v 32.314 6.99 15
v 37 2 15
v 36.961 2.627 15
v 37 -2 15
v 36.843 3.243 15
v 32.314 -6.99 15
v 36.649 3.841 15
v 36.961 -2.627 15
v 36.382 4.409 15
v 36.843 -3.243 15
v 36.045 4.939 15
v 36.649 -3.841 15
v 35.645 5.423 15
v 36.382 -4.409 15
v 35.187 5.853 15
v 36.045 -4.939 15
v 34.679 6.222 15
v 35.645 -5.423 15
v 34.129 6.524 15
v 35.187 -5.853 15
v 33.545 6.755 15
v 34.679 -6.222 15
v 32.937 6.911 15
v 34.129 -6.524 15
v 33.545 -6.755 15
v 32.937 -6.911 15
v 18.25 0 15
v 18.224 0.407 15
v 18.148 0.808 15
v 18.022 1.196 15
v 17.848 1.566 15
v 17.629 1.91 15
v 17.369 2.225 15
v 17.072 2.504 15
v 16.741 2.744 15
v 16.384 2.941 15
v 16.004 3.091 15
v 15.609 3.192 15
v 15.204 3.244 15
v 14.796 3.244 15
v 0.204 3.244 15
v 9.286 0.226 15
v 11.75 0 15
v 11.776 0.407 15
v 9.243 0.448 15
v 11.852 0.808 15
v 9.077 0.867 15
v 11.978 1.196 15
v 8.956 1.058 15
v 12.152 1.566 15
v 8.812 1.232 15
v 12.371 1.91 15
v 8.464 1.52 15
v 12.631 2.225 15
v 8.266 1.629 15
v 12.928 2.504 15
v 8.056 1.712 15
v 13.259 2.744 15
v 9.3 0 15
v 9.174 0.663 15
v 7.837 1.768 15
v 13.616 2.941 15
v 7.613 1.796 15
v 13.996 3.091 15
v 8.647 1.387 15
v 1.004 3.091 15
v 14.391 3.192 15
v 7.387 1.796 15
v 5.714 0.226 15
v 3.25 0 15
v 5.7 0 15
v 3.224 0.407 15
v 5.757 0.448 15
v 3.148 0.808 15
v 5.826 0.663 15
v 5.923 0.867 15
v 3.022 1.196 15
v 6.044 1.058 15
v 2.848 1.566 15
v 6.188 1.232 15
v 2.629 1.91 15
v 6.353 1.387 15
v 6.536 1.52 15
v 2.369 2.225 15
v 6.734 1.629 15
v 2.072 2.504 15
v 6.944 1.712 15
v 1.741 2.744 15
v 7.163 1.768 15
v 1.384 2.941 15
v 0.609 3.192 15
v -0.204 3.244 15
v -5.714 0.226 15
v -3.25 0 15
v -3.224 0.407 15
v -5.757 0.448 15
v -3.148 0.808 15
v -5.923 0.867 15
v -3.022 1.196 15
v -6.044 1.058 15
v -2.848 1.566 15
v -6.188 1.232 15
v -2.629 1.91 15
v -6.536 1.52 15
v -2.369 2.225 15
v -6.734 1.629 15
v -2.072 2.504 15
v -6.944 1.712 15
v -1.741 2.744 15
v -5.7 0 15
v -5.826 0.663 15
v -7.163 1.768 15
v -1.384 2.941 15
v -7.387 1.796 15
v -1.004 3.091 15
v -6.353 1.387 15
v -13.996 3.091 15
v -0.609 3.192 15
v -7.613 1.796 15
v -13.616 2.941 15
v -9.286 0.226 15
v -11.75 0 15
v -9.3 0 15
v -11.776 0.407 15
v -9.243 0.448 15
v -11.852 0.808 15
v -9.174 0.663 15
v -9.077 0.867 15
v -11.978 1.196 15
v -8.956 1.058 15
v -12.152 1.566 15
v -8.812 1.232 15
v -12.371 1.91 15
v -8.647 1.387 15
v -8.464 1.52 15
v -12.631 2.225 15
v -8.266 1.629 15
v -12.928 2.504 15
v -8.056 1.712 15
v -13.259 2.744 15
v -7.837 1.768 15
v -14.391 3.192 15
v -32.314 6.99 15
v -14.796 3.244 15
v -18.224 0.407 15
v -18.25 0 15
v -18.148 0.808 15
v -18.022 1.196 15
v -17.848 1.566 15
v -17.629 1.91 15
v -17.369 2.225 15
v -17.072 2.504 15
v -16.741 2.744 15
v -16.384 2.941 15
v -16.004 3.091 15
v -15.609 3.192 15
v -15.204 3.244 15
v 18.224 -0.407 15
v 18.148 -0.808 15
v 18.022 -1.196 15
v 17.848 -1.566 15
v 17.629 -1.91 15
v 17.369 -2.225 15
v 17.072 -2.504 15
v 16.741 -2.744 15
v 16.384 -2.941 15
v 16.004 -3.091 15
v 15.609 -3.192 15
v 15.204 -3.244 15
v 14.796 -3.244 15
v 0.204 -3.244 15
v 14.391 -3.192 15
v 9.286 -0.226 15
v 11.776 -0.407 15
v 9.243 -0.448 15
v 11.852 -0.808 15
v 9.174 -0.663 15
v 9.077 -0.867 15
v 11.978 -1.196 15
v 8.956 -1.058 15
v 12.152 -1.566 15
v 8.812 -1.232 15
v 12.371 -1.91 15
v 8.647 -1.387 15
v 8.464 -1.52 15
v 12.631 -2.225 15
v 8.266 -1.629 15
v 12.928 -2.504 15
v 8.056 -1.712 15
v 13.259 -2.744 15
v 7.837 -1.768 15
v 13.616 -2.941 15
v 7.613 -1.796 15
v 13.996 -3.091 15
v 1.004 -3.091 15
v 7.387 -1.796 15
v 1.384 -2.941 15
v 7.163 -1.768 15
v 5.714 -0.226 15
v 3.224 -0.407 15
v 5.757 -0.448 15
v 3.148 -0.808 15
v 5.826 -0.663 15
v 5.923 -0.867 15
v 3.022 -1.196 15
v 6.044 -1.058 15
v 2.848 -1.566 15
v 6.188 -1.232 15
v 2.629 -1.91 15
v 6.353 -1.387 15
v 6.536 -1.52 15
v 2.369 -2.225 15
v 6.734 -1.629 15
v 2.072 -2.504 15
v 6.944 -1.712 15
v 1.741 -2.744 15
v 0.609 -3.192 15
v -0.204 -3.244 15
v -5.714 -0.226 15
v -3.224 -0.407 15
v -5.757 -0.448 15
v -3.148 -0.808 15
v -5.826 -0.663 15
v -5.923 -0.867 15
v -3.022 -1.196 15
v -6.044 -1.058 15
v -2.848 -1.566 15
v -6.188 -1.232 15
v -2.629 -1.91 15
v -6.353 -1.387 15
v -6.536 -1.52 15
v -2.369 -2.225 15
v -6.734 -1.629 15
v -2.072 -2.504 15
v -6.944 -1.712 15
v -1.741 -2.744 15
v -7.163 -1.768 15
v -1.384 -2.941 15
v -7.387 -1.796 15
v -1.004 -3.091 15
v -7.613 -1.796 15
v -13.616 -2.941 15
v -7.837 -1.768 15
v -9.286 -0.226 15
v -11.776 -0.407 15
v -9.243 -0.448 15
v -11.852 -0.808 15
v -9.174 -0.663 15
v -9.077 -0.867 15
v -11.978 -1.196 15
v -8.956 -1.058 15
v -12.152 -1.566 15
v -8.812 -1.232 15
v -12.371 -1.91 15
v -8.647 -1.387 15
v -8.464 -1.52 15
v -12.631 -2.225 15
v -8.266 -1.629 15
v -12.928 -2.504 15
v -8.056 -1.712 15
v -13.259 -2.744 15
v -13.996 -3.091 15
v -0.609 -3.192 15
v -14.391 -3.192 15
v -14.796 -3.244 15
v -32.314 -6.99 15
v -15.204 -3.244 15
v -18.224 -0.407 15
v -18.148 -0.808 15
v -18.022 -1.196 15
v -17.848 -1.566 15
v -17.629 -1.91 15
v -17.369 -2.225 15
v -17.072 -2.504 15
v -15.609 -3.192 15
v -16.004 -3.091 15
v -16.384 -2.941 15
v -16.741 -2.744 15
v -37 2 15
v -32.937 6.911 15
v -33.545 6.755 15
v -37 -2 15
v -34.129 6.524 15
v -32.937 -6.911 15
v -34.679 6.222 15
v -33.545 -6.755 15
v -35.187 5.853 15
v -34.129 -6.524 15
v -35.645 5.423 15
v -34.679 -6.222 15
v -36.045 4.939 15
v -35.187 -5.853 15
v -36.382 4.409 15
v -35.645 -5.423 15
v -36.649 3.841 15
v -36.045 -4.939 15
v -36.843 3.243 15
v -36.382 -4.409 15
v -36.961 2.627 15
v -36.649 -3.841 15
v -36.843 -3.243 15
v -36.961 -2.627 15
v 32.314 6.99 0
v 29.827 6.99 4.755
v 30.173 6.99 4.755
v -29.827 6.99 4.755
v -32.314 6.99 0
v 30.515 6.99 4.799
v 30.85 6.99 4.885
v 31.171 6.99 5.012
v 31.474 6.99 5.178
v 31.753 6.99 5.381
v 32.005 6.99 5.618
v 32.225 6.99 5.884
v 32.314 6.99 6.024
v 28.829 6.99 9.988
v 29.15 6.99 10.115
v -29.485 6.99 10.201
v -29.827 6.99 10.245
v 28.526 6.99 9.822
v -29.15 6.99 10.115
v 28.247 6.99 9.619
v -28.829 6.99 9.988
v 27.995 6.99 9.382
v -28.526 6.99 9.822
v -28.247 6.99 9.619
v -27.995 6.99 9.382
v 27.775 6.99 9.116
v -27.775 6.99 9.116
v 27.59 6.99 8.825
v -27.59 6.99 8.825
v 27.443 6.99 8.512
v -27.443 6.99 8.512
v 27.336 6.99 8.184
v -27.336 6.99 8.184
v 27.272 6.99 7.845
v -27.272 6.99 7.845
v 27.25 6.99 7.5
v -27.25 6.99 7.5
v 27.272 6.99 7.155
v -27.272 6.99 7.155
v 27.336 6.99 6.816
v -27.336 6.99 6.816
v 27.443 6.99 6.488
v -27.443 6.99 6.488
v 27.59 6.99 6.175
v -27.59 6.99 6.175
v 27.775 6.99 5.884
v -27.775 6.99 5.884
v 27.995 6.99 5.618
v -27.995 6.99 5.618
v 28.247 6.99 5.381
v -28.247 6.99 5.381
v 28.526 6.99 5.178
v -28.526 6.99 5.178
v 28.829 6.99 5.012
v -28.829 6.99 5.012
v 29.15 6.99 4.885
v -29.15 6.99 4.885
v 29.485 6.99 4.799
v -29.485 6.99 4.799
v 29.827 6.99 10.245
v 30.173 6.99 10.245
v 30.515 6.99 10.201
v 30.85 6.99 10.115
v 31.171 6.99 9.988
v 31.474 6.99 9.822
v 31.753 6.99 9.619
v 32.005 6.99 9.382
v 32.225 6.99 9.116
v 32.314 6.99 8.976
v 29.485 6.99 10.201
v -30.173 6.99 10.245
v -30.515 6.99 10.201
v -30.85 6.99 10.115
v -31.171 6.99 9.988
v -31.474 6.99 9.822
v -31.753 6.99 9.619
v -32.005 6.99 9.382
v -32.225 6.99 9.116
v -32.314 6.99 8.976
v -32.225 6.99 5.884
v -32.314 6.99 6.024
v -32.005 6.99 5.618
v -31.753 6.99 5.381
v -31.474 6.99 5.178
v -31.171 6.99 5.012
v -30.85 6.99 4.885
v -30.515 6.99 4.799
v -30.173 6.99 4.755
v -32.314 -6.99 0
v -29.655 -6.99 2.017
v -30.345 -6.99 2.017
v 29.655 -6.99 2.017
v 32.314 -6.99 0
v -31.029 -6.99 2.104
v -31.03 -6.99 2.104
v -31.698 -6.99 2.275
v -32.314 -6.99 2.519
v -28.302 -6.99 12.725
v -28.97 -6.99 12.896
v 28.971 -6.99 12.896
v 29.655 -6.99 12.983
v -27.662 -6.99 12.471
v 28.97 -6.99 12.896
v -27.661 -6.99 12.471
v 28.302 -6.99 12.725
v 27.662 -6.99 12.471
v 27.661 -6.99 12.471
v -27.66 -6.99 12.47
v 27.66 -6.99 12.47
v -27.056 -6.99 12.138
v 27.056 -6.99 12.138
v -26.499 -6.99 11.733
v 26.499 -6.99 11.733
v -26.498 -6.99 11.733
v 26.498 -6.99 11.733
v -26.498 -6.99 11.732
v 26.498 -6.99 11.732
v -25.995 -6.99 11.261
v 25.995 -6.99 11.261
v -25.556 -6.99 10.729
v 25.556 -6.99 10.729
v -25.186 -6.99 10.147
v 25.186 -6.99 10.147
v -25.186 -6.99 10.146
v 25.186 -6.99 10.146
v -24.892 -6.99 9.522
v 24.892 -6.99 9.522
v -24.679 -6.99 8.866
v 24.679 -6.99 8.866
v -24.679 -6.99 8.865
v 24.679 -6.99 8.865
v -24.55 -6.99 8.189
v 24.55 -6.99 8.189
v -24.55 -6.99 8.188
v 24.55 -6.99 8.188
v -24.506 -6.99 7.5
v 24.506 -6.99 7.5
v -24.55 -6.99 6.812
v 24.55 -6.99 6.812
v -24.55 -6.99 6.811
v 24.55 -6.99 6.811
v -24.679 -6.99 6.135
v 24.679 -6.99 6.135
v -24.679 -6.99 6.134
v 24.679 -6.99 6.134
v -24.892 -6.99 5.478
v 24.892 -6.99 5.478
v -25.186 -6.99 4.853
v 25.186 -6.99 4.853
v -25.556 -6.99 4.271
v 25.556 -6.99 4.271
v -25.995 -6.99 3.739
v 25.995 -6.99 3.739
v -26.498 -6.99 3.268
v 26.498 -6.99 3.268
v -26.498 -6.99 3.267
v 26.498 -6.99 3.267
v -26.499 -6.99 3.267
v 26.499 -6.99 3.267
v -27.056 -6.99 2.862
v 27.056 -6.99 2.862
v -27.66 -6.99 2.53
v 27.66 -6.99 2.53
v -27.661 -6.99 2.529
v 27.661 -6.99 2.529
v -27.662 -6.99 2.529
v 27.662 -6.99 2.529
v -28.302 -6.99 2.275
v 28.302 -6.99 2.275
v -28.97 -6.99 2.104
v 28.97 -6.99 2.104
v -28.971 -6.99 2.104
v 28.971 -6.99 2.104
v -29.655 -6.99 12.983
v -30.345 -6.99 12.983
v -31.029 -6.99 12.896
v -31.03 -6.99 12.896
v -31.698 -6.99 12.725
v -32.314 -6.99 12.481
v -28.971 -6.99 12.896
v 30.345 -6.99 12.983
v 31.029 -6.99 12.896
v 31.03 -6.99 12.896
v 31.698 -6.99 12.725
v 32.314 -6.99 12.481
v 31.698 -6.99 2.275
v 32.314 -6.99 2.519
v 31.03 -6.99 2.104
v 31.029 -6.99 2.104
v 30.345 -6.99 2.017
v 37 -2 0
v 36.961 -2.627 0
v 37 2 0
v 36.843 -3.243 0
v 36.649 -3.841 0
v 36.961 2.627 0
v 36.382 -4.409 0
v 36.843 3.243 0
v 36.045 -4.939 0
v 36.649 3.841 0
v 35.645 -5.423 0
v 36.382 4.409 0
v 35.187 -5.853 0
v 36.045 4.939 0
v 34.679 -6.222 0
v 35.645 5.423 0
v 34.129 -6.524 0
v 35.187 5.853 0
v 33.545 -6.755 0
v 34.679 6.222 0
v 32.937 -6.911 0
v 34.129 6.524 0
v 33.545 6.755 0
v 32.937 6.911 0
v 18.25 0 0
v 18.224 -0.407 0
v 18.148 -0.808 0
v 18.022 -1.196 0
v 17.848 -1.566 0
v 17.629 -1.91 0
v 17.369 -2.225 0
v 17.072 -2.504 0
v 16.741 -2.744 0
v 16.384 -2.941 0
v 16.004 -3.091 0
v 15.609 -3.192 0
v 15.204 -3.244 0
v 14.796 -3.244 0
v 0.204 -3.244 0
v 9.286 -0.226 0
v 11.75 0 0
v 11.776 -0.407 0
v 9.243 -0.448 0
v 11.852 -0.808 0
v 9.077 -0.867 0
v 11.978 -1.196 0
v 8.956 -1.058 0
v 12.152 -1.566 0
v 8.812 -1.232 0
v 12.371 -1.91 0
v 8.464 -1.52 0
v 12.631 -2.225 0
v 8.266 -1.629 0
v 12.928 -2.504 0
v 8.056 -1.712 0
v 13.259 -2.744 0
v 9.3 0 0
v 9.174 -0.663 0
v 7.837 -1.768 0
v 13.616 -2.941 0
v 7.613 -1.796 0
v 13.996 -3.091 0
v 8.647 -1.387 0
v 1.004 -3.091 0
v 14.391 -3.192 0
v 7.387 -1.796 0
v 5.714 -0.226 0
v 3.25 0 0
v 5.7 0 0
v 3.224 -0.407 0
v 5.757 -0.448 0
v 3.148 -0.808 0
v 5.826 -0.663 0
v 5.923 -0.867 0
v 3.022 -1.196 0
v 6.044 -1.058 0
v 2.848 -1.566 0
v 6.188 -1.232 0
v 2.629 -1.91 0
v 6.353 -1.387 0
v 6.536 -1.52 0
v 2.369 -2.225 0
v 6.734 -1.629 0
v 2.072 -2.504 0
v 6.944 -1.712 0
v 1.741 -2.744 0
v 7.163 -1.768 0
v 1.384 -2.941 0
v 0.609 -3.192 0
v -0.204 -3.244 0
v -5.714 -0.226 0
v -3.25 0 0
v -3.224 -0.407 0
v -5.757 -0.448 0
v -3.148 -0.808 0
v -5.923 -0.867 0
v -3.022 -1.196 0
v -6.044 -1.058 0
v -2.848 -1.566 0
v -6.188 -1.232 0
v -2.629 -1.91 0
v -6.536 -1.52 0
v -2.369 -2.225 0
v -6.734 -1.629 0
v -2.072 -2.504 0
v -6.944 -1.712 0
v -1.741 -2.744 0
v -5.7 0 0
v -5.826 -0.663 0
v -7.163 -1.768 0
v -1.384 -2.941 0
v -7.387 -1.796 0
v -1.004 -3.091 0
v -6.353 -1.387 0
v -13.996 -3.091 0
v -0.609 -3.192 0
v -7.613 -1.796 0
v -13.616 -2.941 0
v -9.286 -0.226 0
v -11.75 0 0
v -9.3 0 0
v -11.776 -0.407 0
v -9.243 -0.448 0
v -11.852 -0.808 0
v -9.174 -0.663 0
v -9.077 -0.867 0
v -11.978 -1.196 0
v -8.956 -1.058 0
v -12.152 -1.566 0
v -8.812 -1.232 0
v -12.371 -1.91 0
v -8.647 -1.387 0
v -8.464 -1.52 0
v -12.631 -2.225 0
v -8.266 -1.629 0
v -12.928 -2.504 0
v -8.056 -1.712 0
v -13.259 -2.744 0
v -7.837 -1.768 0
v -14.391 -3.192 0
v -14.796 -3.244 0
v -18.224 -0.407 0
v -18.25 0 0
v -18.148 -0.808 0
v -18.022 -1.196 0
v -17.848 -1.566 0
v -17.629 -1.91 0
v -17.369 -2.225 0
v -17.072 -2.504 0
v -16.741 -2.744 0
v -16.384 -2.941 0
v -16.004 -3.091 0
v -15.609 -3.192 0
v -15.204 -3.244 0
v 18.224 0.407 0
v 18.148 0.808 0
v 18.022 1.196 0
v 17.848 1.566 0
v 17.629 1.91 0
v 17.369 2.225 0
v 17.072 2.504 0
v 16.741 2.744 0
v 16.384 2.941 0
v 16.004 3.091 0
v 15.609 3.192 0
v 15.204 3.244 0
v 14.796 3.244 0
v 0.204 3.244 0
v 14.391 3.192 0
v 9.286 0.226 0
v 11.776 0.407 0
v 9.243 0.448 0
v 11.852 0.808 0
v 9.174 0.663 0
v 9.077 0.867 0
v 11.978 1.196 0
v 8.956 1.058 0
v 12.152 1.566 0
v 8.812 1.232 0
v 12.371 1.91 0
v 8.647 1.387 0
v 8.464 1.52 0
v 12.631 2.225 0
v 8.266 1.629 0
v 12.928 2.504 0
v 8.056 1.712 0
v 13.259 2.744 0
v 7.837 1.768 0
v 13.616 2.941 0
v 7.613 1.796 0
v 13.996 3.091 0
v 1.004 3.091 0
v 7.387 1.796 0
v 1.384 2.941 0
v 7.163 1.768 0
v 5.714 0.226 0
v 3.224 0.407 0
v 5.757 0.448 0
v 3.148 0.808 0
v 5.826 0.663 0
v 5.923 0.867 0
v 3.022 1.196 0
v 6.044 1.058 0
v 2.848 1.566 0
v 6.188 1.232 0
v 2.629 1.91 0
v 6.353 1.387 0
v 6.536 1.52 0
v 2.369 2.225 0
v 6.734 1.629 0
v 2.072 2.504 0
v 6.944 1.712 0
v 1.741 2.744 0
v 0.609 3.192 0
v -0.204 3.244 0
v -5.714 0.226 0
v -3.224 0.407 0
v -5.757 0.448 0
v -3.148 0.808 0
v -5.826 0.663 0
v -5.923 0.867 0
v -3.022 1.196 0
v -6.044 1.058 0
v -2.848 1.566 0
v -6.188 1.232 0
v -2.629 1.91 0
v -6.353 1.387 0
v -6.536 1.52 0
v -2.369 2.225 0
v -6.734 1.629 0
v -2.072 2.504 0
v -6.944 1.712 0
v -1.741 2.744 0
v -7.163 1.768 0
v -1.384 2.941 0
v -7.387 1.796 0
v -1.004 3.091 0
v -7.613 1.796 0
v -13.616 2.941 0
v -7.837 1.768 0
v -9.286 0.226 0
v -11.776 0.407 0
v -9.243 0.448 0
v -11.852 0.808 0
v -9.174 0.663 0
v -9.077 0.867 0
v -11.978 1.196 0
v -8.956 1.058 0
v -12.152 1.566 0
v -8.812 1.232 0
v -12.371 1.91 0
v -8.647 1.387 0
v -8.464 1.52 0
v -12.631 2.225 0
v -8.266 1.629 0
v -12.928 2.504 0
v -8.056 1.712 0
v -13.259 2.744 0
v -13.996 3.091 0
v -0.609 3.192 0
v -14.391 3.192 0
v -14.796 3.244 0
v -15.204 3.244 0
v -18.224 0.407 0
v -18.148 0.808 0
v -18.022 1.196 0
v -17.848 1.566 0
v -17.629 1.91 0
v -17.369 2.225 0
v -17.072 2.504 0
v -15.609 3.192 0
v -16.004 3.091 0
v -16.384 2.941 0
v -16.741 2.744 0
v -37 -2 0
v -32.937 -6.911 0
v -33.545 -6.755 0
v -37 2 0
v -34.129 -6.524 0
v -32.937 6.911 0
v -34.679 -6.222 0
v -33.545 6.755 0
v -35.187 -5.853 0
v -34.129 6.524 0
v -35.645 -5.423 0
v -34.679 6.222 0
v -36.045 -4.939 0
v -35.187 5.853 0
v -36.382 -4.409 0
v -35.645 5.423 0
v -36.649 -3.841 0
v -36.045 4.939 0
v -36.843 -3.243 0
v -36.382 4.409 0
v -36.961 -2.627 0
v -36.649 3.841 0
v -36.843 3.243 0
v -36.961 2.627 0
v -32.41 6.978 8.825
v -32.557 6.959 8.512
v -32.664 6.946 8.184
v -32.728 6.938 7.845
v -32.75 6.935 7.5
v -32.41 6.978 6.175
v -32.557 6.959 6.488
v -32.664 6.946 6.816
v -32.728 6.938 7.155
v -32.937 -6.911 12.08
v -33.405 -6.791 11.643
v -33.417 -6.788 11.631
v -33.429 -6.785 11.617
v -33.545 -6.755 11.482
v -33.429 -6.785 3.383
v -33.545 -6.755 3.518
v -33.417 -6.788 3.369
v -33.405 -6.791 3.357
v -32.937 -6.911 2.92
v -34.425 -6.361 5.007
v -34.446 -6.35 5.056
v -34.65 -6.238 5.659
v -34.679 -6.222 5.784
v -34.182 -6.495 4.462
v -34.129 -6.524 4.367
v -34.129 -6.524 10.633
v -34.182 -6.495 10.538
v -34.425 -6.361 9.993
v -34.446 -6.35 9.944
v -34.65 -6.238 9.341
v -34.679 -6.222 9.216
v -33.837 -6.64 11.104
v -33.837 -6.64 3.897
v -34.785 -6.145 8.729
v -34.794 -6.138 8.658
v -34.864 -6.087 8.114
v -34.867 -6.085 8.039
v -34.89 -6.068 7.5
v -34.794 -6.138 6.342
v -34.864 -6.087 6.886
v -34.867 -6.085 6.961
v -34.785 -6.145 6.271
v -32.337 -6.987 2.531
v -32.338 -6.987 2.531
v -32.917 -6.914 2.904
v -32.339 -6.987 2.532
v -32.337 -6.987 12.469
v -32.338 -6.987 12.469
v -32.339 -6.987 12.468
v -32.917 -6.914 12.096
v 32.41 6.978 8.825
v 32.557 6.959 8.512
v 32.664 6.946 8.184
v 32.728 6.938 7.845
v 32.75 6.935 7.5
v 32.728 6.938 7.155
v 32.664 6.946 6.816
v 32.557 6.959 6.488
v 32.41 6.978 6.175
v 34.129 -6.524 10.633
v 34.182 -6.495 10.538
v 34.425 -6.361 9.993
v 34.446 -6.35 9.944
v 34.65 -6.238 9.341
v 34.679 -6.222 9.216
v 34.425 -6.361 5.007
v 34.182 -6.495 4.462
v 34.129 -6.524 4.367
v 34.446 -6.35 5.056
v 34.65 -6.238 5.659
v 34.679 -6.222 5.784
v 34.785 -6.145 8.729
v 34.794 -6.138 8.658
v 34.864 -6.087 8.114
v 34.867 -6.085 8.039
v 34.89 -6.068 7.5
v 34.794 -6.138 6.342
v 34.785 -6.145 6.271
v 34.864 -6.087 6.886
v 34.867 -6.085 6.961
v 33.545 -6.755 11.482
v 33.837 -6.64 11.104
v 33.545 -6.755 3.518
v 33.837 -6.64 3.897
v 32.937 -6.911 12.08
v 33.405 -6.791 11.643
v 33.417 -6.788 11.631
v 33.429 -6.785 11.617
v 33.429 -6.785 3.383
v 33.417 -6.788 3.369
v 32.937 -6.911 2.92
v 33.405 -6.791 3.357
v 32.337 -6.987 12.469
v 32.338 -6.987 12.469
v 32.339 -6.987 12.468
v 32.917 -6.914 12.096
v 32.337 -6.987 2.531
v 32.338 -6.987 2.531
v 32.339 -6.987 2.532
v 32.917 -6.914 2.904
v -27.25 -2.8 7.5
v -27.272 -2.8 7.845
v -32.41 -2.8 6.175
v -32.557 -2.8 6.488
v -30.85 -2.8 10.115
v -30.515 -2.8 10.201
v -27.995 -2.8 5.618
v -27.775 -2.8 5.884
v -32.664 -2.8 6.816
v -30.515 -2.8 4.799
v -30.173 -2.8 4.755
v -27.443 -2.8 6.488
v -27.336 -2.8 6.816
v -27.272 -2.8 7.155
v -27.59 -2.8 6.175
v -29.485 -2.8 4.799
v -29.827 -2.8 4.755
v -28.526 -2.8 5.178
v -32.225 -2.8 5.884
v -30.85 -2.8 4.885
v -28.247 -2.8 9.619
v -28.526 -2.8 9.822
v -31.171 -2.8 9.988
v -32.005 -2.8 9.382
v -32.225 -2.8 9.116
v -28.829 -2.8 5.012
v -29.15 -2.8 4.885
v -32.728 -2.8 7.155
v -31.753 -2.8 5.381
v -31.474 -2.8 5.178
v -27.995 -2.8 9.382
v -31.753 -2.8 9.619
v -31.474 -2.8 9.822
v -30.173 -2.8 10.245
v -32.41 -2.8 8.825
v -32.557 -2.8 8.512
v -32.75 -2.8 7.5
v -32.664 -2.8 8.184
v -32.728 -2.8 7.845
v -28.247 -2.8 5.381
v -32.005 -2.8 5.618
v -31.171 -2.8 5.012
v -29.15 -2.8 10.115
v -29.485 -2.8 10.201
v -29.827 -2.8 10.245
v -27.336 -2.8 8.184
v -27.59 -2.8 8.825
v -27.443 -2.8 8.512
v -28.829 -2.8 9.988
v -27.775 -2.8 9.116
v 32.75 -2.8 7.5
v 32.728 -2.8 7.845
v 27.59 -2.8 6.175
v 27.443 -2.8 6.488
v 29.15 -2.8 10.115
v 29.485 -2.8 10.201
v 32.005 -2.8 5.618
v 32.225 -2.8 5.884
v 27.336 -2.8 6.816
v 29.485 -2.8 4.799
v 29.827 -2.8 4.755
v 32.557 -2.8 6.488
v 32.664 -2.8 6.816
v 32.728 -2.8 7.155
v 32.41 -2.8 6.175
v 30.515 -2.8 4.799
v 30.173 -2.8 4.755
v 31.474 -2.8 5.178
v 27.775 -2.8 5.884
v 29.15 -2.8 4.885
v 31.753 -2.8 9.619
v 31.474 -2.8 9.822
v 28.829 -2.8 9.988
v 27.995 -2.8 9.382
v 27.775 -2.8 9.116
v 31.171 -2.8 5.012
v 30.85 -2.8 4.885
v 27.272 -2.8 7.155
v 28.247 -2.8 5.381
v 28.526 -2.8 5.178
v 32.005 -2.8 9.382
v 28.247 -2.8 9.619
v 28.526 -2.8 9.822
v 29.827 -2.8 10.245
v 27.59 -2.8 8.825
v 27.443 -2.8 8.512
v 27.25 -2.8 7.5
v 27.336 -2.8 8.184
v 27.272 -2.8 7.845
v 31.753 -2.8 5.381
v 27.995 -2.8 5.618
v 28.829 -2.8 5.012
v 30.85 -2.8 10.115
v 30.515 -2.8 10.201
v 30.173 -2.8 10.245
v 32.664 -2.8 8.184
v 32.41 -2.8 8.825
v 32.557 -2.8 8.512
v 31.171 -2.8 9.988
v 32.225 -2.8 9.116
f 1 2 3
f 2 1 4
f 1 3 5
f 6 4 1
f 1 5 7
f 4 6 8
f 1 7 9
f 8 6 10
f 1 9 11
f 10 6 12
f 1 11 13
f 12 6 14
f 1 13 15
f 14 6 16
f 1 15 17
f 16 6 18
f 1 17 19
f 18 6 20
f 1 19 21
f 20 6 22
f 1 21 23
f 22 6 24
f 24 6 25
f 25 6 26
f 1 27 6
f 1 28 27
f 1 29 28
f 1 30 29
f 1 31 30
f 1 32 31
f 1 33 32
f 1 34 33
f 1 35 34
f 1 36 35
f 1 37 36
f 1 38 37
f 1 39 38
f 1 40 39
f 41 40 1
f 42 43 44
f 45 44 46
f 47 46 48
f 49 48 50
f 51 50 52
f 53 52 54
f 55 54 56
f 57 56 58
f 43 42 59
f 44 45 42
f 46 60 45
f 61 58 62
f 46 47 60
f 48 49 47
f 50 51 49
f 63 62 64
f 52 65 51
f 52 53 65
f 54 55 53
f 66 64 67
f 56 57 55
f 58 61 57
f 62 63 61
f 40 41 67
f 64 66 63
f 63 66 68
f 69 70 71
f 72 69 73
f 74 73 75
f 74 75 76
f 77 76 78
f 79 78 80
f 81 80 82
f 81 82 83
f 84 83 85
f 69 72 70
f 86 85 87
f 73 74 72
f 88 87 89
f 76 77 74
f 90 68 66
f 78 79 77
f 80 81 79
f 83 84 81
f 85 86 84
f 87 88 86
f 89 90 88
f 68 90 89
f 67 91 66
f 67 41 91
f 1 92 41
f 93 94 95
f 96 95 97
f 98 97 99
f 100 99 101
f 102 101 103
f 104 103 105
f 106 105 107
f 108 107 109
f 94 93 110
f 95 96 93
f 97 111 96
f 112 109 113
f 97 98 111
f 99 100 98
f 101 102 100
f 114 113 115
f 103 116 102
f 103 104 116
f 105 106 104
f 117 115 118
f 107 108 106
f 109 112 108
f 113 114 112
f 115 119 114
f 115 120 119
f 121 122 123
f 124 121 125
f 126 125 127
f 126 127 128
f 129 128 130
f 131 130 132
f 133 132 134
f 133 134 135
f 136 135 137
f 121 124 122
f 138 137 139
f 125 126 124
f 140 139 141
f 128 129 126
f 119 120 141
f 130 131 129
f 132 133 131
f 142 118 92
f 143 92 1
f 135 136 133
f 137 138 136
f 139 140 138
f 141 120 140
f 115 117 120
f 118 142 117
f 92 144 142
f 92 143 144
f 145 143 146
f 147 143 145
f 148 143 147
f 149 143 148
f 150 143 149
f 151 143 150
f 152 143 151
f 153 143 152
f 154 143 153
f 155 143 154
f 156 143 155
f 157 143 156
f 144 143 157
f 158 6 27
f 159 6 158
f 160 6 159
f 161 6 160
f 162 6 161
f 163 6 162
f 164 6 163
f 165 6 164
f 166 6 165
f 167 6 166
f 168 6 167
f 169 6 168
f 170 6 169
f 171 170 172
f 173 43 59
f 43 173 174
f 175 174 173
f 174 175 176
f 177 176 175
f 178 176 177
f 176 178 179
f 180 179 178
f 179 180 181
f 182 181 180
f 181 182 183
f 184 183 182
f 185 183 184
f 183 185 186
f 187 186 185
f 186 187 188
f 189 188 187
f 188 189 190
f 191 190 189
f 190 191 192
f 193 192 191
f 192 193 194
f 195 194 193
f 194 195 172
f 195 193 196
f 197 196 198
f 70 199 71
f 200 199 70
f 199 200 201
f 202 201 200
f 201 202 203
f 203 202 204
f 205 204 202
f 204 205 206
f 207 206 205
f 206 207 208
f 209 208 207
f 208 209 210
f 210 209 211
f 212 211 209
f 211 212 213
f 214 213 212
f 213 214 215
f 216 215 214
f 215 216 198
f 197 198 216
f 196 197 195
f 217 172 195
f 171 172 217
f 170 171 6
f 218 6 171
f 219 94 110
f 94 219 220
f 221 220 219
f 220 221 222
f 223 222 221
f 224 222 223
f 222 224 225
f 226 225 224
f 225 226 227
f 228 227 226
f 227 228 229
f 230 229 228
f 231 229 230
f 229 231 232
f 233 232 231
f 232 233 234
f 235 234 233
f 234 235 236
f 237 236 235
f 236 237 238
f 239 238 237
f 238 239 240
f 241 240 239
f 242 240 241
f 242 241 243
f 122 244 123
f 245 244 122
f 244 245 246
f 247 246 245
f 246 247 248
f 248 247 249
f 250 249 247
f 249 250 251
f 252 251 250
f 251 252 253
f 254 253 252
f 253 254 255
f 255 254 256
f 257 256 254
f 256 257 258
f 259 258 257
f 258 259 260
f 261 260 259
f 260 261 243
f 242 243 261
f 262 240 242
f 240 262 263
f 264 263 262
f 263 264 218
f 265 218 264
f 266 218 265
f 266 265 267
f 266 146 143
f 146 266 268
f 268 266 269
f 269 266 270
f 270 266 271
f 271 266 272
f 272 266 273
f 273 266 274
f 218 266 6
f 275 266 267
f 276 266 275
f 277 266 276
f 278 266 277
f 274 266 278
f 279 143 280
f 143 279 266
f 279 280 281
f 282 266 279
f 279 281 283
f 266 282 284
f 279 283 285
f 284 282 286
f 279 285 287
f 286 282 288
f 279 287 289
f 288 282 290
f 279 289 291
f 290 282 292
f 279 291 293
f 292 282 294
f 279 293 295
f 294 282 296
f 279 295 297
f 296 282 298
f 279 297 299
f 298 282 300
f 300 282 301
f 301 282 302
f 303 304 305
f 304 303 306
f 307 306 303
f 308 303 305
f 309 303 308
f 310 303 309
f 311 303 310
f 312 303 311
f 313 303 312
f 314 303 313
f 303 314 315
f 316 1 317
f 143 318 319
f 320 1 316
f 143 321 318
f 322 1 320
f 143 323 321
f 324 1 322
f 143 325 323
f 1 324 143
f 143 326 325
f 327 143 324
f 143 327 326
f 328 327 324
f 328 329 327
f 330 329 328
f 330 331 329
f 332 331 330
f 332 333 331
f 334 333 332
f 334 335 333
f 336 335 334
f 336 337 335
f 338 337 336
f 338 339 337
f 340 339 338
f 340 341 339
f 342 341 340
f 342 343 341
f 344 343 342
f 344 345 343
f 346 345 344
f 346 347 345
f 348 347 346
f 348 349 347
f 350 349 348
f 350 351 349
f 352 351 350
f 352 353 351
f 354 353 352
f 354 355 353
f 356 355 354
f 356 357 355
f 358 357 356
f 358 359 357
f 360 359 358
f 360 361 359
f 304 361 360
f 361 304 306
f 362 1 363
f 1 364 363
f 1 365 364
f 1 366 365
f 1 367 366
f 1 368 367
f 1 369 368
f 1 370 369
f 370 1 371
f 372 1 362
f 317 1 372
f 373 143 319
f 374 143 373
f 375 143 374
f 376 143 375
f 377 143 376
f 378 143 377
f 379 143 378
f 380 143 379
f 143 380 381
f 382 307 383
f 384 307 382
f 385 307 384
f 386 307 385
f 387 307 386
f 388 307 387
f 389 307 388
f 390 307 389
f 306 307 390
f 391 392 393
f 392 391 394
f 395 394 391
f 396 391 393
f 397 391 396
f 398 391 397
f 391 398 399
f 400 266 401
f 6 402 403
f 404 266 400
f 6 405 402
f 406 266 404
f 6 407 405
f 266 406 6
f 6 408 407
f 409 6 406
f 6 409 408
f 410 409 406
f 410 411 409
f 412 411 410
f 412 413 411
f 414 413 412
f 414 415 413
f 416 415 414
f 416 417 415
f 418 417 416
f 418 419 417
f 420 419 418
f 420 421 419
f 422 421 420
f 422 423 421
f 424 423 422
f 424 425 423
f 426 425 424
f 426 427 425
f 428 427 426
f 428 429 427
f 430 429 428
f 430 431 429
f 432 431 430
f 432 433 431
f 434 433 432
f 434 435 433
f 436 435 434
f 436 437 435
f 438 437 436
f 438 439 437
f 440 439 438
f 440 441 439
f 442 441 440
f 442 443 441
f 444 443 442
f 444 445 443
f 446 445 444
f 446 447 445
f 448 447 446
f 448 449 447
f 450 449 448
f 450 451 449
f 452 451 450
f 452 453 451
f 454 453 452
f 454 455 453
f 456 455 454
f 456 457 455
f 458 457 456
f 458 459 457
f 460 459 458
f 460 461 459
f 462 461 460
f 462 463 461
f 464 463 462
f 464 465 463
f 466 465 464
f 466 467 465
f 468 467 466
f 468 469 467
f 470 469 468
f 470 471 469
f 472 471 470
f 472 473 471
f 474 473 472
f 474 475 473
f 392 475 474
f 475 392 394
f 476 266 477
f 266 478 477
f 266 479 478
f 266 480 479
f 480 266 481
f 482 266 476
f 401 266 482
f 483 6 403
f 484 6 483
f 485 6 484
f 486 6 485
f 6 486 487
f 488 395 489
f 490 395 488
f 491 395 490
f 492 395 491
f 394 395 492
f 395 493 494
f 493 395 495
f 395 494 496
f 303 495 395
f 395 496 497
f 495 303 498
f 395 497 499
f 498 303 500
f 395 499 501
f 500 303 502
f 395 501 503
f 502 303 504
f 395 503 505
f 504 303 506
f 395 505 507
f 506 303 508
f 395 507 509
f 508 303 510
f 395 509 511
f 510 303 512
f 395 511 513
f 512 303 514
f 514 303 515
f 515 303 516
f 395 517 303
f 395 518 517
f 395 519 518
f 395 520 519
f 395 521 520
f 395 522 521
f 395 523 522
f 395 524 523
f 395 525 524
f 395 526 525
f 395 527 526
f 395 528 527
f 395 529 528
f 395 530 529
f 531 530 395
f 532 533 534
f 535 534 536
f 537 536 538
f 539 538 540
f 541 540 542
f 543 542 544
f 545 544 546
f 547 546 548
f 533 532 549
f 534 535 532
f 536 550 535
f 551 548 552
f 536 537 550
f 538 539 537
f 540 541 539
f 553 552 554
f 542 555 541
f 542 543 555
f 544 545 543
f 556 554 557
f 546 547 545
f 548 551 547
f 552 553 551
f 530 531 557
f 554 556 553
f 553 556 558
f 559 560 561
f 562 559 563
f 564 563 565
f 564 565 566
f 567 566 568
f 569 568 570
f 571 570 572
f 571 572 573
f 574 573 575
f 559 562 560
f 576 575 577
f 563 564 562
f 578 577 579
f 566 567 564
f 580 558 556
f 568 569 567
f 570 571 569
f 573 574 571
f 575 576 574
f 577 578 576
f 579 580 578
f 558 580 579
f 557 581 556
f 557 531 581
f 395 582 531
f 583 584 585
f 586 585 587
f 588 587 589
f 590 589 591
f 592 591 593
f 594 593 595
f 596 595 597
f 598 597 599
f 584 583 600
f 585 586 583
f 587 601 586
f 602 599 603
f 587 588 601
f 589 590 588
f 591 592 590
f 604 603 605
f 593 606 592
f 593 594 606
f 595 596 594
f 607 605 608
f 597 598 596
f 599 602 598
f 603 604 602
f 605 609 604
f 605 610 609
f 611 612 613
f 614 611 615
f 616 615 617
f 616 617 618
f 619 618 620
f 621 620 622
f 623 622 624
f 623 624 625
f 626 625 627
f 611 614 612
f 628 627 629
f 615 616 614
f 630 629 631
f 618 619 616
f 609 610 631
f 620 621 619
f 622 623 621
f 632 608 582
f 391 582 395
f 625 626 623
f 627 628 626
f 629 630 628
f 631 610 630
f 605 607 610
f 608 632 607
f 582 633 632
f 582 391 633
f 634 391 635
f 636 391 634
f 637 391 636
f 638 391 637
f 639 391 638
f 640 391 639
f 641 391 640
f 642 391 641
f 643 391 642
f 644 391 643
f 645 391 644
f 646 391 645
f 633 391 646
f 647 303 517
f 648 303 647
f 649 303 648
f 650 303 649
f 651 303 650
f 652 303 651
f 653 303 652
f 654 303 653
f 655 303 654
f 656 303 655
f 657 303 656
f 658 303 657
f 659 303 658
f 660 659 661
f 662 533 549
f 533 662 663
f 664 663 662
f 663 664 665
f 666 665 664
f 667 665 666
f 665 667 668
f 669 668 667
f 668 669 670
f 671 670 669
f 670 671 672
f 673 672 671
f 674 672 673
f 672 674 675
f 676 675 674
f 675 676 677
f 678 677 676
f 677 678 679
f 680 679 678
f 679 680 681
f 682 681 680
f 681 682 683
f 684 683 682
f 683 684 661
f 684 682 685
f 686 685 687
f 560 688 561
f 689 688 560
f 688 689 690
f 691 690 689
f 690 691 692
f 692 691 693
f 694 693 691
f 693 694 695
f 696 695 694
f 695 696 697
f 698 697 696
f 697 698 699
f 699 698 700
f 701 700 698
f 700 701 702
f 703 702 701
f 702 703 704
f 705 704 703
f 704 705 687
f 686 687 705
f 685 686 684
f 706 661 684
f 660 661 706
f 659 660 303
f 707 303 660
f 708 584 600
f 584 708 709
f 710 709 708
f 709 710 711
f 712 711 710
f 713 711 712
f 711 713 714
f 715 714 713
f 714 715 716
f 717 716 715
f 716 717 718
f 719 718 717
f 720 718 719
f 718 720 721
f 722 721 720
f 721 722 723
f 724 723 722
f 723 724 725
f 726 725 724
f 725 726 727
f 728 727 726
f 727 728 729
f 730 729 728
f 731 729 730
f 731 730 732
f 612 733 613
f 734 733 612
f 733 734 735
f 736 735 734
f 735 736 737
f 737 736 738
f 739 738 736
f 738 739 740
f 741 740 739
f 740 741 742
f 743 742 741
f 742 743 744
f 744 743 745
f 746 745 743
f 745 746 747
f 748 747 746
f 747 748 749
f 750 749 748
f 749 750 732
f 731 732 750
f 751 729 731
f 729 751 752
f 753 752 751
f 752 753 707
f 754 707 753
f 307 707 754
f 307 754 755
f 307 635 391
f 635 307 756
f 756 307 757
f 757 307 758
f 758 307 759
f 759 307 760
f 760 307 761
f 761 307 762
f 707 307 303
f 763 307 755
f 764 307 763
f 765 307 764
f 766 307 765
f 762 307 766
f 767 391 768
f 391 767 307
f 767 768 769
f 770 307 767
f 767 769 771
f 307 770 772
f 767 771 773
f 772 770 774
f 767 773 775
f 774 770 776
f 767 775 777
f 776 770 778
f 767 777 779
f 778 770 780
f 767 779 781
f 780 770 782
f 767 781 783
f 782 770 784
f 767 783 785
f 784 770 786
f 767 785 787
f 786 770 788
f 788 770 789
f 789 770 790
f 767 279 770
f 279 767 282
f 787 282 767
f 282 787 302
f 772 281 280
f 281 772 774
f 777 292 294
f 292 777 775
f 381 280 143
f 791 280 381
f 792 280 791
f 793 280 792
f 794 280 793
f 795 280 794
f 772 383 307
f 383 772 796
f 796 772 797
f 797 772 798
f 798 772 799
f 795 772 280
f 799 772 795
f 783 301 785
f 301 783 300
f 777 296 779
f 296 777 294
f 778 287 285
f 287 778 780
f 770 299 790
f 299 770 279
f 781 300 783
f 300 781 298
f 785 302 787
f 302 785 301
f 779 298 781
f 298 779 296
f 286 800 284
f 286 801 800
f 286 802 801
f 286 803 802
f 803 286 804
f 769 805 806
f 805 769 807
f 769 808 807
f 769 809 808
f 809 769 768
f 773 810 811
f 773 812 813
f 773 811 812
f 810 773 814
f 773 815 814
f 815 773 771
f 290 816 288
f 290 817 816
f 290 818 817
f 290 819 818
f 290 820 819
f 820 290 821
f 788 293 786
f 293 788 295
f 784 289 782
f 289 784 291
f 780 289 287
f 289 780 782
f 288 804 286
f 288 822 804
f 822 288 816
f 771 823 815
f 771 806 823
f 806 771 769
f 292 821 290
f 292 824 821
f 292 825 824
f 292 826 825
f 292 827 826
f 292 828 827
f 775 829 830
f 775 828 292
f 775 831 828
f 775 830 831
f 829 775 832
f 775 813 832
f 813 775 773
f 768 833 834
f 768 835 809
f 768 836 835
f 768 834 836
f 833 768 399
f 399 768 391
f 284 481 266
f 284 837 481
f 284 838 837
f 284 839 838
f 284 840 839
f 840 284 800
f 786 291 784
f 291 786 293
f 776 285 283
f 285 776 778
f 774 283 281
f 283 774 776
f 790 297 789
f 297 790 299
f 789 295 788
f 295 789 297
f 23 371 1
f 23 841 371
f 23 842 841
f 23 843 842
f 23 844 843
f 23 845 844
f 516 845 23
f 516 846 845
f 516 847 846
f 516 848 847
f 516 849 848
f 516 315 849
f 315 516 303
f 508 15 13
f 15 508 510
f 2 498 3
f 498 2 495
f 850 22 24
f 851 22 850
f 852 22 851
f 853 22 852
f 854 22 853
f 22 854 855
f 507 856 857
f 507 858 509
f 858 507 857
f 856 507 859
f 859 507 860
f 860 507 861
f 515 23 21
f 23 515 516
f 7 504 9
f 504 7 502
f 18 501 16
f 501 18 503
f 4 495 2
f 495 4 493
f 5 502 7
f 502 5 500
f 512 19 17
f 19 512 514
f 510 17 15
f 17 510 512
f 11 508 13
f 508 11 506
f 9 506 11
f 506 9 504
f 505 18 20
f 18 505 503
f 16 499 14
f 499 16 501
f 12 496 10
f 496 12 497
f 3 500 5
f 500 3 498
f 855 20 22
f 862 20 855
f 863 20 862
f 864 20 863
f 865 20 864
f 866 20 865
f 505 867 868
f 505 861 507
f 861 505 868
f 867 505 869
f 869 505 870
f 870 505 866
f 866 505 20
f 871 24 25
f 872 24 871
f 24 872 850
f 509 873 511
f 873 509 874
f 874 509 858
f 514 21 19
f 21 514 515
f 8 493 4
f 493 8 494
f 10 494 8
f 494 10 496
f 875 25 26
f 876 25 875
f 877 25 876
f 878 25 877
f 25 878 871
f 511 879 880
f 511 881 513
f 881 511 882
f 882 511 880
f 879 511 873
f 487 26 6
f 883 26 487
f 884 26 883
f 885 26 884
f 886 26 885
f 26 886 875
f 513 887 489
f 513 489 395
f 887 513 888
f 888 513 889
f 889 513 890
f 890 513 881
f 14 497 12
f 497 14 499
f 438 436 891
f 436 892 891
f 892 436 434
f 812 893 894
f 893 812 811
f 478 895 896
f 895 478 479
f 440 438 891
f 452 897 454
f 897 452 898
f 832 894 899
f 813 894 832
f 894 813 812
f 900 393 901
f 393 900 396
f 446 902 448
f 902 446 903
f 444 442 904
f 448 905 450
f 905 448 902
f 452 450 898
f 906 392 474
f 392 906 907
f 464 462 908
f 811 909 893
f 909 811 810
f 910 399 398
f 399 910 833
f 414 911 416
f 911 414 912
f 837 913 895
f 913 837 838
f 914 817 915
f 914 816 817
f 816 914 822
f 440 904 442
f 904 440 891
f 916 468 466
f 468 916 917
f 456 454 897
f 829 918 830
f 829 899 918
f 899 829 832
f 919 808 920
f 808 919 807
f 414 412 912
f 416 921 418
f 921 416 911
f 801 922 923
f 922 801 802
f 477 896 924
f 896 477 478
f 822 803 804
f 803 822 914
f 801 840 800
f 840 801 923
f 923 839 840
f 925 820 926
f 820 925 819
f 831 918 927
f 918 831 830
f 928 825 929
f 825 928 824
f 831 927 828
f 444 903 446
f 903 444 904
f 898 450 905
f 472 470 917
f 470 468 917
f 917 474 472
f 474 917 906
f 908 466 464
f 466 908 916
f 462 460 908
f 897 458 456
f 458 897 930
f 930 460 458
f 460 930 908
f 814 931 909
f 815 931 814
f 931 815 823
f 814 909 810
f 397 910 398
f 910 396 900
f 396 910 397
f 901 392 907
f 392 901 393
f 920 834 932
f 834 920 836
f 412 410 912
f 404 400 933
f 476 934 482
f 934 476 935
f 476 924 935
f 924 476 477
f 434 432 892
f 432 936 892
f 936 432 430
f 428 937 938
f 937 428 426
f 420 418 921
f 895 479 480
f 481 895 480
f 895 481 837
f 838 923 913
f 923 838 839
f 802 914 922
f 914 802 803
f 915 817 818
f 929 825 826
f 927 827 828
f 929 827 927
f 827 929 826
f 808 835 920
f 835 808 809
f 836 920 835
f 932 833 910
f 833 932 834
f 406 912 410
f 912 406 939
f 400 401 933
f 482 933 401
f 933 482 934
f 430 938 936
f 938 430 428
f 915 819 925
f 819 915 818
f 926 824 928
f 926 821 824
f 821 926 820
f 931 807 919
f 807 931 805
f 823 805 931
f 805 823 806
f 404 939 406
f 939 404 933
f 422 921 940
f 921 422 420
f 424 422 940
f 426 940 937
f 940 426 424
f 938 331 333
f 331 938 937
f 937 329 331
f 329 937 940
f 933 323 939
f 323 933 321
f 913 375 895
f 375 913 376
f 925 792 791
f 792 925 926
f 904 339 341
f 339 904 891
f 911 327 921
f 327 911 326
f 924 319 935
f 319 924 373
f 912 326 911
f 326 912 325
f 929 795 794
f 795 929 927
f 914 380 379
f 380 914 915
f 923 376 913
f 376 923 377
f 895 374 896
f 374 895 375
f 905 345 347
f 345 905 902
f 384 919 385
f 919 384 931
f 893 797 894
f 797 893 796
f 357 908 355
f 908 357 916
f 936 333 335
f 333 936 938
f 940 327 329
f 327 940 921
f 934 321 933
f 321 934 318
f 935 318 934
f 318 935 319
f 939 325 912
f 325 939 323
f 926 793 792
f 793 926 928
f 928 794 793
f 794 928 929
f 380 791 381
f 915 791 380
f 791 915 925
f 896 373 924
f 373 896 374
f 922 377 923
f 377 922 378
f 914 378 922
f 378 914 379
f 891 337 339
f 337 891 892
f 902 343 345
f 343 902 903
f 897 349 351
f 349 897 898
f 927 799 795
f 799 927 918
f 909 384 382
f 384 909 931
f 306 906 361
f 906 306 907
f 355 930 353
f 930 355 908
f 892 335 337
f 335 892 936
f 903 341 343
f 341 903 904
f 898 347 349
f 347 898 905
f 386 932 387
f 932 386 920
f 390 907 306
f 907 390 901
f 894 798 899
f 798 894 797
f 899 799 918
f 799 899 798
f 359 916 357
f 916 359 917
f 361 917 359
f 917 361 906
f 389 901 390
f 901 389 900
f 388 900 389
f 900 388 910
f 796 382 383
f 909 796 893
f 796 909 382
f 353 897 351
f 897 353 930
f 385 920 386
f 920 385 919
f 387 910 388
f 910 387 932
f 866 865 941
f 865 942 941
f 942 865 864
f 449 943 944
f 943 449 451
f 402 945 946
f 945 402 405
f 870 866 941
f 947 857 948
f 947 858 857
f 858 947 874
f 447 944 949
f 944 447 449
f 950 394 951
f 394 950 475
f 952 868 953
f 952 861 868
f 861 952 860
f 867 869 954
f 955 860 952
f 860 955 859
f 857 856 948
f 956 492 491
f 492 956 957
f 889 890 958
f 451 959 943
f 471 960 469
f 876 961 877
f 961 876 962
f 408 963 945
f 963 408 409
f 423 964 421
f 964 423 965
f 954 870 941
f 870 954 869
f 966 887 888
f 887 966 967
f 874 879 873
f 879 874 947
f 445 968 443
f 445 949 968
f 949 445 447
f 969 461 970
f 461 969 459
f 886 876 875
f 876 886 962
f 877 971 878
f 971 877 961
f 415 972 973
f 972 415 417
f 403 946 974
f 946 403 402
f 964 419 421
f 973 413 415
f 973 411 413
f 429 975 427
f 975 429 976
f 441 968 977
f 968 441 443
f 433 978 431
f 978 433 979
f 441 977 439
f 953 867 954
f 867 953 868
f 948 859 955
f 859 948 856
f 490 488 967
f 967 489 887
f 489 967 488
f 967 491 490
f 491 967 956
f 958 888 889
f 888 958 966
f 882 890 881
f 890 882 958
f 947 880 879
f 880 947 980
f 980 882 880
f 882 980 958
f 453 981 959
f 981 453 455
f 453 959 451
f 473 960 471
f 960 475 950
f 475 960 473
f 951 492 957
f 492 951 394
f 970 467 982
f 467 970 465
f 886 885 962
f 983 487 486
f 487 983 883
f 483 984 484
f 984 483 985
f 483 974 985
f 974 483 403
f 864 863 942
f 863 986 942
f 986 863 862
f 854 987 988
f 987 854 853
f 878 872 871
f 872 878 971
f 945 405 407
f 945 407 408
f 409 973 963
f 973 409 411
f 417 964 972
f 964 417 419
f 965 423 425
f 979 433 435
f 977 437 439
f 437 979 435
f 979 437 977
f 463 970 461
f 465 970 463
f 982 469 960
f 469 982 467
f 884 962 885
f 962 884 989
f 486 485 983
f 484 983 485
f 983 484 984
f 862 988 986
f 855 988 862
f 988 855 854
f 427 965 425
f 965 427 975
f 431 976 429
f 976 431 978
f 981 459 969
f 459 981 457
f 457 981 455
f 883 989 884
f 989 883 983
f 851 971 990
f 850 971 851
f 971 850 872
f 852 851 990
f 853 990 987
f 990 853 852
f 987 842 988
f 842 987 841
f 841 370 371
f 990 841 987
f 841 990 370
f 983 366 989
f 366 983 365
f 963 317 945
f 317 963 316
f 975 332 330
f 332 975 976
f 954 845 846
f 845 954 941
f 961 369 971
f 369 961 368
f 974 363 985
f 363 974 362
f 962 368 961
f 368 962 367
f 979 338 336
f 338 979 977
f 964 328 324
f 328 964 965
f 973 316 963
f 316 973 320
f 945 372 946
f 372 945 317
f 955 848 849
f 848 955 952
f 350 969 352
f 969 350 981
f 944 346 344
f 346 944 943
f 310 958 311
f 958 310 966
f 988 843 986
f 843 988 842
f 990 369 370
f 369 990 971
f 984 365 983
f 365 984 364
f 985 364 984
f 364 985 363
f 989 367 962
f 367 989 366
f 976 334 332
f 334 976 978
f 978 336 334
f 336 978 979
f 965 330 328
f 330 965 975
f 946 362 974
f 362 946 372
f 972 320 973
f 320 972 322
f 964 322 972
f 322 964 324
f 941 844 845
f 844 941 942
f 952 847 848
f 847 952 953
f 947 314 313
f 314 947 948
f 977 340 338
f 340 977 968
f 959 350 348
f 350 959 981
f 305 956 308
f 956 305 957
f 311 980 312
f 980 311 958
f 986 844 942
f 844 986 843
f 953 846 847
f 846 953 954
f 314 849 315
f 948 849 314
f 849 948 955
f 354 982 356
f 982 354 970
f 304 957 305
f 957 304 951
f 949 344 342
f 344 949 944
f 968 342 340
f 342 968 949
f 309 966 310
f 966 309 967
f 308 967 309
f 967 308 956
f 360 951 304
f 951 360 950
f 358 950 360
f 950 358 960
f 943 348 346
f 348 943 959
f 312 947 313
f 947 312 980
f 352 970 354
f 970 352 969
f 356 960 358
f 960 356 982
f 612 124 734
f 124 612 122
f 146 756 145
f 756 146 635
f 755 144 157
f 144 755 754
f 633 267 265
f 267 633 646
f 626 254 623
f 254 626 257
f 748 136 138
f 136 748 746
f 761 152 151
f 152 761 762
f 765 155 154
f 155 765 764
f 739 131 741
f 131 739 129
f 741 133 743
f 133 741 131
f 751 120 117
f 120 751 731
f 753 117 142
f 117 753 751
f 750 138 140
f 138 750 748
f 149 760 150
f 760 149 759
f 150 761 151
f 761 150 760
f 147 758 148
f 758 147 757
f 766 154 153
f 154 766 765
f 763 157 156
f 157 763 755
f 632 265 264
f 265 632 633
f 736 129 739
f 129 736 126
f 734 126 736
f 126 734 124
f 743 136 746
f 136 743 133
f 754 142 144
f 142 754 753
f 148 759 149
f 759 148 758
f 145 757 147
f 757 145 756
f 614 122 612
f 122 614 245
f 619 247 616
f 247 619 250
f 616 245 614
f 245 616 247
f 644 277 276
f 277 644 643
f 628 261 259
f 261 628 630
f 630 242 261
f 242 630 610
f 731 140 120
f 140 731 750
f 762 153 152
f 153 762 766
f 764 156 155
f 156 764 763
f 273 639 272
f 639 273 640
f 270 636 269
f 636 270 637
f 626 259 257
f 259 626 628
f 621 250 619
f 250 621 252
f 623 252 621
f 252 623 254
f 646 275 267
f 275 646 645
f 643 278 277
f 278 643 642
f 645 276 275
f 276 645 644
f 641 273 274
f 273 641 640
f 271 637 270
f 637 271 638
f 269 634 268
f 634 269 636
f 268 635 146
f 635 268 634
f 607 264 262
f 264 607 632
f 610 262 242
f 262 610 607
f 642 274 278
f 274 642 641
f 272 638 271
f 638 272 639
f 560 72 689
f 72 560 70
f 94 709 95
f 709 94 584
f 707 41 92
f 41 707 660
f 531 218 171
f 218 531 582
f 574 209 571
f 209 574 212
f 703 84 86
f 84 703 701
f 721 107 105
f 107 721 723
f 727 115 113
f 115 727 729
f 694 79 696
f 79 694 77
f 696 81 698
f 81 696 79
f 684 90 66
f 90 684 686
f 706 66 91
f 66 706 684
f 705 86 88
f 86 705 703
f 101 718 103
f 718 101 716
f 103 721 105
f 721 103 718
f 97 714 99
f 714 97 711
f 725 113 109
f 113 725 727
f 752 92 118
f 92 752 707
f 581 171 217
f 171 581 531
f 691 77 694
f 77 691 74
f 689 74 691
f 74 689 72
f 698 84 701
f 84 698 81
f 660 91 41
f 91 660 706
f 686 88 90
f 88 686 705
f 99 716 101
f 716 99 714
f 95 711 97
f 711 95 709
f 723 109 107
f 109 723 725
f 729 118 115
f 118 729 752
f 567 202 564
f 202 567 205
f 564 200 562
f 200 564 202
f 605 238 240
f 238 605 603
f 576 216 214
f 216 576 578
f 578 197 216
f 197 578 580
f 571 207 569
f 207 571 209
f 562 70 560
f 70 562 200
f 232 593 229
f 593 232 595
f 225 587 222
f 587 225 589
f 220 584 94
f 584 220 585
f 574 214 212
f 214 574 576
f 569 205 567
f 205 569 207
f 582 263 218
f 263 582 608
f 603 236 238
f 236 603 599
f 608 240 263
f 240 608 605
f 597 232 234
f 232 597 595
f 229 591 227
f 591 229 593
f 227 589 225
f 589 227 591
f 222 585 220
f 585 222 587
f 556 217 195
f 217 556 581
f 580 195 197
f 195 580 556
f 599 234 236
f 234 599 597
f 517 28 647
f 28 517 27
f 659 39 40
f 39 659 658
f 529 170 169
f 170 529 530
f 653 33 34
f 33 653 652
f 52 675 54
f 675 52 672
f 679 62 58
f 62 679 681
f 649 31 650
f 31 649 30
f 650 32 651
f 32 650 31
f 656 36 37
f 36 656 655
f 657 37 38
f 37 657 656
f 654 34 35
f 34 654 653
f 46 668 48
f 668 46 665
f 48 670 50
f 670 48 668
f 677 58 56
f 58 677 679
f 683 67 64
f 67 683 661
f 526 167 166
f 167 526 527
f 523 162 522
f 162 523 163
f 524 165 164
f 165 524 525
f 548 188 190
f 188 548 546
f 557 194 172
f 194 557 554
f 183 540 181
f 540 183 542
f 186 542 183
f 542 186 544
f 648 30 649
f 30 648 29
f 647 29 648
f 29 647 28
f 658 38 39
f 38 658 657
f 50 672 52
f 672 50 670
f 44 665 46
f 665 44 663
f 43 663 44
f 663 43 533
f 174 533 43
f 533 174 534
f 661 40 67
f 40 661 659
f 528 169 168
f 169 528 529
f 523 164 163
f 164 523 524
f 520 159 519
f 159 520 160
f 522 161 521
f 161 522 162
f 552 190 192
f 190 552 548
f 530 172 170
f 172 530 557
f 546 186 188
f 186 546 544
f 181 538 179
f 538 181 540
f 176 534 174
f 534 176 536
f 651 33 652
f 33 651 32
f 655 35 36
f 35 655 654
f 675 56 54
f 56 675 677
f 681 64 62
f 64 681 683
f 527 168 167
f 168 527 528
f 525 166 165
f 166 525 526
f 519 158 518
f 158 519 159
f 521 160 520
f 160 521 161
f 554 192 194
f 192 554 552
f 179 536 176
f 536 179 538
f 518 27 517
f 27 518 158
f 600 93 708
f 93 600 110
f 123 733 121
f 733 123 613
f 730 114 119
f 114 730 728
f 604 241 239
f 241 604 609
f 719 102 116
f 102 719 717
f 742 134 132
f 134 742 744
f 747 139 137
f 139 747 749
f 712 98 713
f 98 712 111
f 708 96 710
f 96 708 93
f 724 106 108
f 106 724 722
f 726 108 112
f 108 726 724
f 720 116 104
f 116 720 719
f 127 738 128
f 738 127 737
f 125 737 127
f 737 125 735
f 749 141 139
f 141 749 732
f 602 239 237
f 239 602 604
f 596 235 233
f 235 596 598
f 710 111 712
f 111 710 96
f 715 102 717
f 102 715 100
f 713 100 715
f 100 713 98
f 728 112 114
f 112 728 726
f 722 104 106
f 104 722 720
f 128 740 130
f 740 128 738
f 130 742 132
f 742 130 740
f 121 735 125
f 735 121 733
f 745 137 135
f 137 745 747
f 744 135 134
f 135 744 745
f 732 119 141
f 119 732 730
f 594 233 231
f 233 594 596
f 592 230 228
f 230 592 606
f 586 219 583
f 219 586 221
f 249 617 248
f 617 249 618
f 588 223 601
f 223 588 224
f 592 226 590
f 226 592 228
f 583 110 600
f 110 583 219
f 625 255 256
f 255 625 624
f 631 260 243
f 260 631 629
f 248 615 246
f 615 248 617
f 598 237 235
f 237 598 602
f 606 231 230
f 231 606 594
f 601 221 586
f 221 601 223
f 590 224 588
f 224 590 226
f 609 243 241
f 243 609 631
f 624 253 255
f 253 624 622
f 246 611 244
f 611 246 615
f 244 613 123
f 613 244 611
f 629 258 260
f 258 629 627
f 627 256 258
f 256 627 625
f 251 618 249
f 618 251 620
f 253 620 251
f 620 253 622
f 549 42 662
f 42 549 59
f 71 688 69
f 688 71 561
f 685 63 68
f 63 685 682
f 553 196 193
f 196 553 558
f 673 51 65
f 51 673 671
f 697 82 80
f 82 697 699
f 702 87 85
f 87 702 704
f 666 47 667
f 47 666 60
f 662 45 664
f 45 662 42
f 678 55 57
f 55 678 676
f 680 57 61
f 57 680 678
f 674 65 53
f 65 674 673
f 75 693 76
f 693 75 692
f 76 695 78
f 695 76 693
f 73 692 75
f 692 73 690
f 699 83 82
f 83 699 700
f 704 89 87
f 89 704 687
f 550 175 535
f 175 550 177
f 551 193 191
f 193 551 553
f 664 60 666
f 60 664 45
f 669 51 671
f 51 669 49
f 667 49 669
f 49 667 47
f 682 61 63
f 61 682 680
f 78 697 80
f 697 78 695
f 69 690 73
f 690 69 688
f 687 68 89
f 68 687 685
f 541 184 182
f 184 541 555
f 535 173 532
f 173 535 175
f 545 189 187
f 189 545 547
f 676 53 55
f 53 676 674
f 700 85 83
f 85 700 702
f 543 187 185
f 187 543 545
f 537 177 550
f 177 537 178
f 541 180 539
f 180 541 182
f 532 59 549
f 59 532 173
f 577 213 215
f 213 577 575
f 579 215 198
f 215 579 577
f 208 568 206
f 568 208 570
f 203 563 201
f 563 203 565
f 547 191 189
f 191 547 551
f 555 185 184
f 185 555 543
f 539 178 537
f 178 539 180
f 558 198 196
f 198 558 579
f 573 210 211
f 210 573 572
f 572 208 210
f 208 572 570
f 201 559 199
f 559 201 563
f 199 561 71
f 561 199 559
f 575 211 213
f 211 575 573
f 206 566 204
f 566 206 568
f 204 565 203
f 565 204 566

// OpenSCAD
$fn = 50;


difference() {
	union() {
		hull() {
			translate(v = [-17.0000000000, 2.0000000000, 0]) {
				cylinder(h = 15, r = 5);
			}
			translate(v = [17.0000000000, 2.0000000000, 0]) {
				cylinder(h = 15, r = 5);
			}
			translate(v = [-17.0000000000, -2.0000000000, 0]) {
				cylinder(h = 15, r = 5);
			}
			translate(v = [17.0000000000, -2.0000000000, 0]) {
				cylinder(h = 15, r = 5);
			}
		}
		translate(v = [-22.5000000000, 0.0000000000, 0]) {
			hull() {
				translate(v = [-9.5000000000, 2.0000000000, 0]) {
					cylinder(h = 15, r = 5);
				}
				translate(v = [9.5000000000, 2.0000000000, 0]) {
					cylinder(h = 15, r = 5);
				}
				translate(v = [-9.5000000000, -2.0000000000, 0]) {
					cylinder(h = 15, r = 5);
				}
				translate(v = [9.5000000000, -2.0000000000, 0]) {
					cylinder(h = 15, r = 5);
				}
			}
		}
		translate(v = [-22.5000000000, 0.0000000000, 0]) {
			hull() {
				translate(v = [-9.5000000000, 2.0000000000, 0]) {
					cylinder(h = 15, r = 5);
				}
				translate(v = [9.5000000000, 2.0000000000, 0]) {
					cylinder(h = 15, r = 5);
				}
				translate(v = [-9.5000000000, -2.0000000000, 0]) {
					cylinder(h = 15, r = 5);
				}
				translate(v = [9.5000000000, -2.0000000000, 0]) {
					cylinder(h = 15, r = 5);
				}
			}
		}
		translate(v = [22.5000000000, 0.0000000000, 0]) {
			hull() {
				translate(v = [-9.5000000000, 2.0000000000, 0]) {
					cylinder(h = 15, r = 5);
				}
				translate(v = [9.5000000000, 2.0000000000, 0]) {
					cylinder(h = 15, r = 5);
				}
				translate(v = [-9.5000000000, -2.0000000000, 0]) {
					cylinder(h = 15, r = 5);
				}
				translate(v = [9.5000000000, -2.0000000000, 0]) {
					cylinder(h = 15, r = 5);
				}
			}
		}
		translate(v = [22.5000000000, 0.0000000000, 0]) {
			hull() {
				translate(v = [-9.5000000000, 2.0000000000, 0]) {
					cylinder(h = 15, r = 5);
				}
				translate(v = [9.5000000000, 2.0000000000, 0]) {
					cylinder(h = 15, r = 5);
				}
				translate(v = [-9.5000000000, -2.0000000000, 0]) {
					cylinder(h = 15, r = 5);
				}
				translate(v = [9.5000000000, -2.0000000000, 0]) {
					cylinder(h = 15, r = 5);
				}
			}
		}
	}
	union() {
		translate(v = [-30.0000000000, -7.0000000000, 7.5000000000]) {
			rotate(a = [90, 0, 0]) {
				difference() {
					union() {
						#translate(v = [0, 0, -14.0000000000]) {
							cylinder(h = 14, r = 2.2500000000);
						}
						#translate(v = [0, 0, -4.2000000000]) {
							cylinder(h = 4.2000000000, r1 = 2.7500000000, r2 = 5.5000000000);
						}
						#translate(v = [0, 0, -14.0000000000]) {
							cylinder(h = 14, r = 2.7500000000);
						}
						#translate(v = [0, 0, -14.0000000000]) {
							cylinder(h = 14, r = 2.2500000000);
						}
					}
					union();
				}
			}
		}
		translate(v = [30.0000000000, -7.0000000000, 7.5000000000]) {
			rotate(a = [90, 0, 0]) {
				difference() {
					union() {
						#translate(v = [0, 0, -14.0000000000]) {
							cylinder(h = 14, r = 2.2500000000);
						}
						#translate(v = [0, 0, -4.2000000000]) {
							cylinder(h = 4.2000000000, r1 = 2.7500000000, r2 = 5.5000000000);
						}
						#translate(v = [0, 0, -14.0000000000]) {
							cylinder(h = 14, r = 2.7500000000);
						}
						#translate(v = [0, 0, -14.0000000000]) {
							cylinder(h = 14, r = 2.2500000000);
						}
					}
					union();
				}
			}
		}
		translate(v = [-15.0000000000, 0.0000000000, 0]) {
			translate(v = [0, 0, -100]) {
				cylinder(h = 200, r = 3.2500000000);
			}
		}
		translate(v = [0, 0, -100]) {
			cylinder(h = 200, r = 3.2500000000);
		}
		translate(v = [15.0000000000, 0.0000000000, 0]) {
			translate(v = [0, 0, -100]) {
				cylinder(h = 200, r = 3.2500000000);
			}
		}
		translate(v = [-15.0000000000, 0.0000000000, 0]) {
			translate(v = [0, 0, -100]) {
				cylinder(h = 200, r = 1.8000000000);
			}
		}
		translate(v = [-7.5000000000, 0.0000000000, 0]) {
			translate(v = [0, 0, -100]) {
				cylinder(h = 200, r = 1.8000000000);
			}
		}
		translate(v = [0, 0, -100]) {
			cylinder(h = 200, r = 1.8000000000);
		}
		translate(v = [7.5000000000, 0.0000000000, 0]) {
			translate(v = [0, 0, -100]) {
				cylinder(h = 200, r = 1.8000000000);
			}
		}
		translate(v = [15.0000000000, 0.0000000000, 0]) {
			translate(v = [0, 0, -100]) {
				cylinder(h = 200, r = 1.8000000000);
			}
		}
	}
}
